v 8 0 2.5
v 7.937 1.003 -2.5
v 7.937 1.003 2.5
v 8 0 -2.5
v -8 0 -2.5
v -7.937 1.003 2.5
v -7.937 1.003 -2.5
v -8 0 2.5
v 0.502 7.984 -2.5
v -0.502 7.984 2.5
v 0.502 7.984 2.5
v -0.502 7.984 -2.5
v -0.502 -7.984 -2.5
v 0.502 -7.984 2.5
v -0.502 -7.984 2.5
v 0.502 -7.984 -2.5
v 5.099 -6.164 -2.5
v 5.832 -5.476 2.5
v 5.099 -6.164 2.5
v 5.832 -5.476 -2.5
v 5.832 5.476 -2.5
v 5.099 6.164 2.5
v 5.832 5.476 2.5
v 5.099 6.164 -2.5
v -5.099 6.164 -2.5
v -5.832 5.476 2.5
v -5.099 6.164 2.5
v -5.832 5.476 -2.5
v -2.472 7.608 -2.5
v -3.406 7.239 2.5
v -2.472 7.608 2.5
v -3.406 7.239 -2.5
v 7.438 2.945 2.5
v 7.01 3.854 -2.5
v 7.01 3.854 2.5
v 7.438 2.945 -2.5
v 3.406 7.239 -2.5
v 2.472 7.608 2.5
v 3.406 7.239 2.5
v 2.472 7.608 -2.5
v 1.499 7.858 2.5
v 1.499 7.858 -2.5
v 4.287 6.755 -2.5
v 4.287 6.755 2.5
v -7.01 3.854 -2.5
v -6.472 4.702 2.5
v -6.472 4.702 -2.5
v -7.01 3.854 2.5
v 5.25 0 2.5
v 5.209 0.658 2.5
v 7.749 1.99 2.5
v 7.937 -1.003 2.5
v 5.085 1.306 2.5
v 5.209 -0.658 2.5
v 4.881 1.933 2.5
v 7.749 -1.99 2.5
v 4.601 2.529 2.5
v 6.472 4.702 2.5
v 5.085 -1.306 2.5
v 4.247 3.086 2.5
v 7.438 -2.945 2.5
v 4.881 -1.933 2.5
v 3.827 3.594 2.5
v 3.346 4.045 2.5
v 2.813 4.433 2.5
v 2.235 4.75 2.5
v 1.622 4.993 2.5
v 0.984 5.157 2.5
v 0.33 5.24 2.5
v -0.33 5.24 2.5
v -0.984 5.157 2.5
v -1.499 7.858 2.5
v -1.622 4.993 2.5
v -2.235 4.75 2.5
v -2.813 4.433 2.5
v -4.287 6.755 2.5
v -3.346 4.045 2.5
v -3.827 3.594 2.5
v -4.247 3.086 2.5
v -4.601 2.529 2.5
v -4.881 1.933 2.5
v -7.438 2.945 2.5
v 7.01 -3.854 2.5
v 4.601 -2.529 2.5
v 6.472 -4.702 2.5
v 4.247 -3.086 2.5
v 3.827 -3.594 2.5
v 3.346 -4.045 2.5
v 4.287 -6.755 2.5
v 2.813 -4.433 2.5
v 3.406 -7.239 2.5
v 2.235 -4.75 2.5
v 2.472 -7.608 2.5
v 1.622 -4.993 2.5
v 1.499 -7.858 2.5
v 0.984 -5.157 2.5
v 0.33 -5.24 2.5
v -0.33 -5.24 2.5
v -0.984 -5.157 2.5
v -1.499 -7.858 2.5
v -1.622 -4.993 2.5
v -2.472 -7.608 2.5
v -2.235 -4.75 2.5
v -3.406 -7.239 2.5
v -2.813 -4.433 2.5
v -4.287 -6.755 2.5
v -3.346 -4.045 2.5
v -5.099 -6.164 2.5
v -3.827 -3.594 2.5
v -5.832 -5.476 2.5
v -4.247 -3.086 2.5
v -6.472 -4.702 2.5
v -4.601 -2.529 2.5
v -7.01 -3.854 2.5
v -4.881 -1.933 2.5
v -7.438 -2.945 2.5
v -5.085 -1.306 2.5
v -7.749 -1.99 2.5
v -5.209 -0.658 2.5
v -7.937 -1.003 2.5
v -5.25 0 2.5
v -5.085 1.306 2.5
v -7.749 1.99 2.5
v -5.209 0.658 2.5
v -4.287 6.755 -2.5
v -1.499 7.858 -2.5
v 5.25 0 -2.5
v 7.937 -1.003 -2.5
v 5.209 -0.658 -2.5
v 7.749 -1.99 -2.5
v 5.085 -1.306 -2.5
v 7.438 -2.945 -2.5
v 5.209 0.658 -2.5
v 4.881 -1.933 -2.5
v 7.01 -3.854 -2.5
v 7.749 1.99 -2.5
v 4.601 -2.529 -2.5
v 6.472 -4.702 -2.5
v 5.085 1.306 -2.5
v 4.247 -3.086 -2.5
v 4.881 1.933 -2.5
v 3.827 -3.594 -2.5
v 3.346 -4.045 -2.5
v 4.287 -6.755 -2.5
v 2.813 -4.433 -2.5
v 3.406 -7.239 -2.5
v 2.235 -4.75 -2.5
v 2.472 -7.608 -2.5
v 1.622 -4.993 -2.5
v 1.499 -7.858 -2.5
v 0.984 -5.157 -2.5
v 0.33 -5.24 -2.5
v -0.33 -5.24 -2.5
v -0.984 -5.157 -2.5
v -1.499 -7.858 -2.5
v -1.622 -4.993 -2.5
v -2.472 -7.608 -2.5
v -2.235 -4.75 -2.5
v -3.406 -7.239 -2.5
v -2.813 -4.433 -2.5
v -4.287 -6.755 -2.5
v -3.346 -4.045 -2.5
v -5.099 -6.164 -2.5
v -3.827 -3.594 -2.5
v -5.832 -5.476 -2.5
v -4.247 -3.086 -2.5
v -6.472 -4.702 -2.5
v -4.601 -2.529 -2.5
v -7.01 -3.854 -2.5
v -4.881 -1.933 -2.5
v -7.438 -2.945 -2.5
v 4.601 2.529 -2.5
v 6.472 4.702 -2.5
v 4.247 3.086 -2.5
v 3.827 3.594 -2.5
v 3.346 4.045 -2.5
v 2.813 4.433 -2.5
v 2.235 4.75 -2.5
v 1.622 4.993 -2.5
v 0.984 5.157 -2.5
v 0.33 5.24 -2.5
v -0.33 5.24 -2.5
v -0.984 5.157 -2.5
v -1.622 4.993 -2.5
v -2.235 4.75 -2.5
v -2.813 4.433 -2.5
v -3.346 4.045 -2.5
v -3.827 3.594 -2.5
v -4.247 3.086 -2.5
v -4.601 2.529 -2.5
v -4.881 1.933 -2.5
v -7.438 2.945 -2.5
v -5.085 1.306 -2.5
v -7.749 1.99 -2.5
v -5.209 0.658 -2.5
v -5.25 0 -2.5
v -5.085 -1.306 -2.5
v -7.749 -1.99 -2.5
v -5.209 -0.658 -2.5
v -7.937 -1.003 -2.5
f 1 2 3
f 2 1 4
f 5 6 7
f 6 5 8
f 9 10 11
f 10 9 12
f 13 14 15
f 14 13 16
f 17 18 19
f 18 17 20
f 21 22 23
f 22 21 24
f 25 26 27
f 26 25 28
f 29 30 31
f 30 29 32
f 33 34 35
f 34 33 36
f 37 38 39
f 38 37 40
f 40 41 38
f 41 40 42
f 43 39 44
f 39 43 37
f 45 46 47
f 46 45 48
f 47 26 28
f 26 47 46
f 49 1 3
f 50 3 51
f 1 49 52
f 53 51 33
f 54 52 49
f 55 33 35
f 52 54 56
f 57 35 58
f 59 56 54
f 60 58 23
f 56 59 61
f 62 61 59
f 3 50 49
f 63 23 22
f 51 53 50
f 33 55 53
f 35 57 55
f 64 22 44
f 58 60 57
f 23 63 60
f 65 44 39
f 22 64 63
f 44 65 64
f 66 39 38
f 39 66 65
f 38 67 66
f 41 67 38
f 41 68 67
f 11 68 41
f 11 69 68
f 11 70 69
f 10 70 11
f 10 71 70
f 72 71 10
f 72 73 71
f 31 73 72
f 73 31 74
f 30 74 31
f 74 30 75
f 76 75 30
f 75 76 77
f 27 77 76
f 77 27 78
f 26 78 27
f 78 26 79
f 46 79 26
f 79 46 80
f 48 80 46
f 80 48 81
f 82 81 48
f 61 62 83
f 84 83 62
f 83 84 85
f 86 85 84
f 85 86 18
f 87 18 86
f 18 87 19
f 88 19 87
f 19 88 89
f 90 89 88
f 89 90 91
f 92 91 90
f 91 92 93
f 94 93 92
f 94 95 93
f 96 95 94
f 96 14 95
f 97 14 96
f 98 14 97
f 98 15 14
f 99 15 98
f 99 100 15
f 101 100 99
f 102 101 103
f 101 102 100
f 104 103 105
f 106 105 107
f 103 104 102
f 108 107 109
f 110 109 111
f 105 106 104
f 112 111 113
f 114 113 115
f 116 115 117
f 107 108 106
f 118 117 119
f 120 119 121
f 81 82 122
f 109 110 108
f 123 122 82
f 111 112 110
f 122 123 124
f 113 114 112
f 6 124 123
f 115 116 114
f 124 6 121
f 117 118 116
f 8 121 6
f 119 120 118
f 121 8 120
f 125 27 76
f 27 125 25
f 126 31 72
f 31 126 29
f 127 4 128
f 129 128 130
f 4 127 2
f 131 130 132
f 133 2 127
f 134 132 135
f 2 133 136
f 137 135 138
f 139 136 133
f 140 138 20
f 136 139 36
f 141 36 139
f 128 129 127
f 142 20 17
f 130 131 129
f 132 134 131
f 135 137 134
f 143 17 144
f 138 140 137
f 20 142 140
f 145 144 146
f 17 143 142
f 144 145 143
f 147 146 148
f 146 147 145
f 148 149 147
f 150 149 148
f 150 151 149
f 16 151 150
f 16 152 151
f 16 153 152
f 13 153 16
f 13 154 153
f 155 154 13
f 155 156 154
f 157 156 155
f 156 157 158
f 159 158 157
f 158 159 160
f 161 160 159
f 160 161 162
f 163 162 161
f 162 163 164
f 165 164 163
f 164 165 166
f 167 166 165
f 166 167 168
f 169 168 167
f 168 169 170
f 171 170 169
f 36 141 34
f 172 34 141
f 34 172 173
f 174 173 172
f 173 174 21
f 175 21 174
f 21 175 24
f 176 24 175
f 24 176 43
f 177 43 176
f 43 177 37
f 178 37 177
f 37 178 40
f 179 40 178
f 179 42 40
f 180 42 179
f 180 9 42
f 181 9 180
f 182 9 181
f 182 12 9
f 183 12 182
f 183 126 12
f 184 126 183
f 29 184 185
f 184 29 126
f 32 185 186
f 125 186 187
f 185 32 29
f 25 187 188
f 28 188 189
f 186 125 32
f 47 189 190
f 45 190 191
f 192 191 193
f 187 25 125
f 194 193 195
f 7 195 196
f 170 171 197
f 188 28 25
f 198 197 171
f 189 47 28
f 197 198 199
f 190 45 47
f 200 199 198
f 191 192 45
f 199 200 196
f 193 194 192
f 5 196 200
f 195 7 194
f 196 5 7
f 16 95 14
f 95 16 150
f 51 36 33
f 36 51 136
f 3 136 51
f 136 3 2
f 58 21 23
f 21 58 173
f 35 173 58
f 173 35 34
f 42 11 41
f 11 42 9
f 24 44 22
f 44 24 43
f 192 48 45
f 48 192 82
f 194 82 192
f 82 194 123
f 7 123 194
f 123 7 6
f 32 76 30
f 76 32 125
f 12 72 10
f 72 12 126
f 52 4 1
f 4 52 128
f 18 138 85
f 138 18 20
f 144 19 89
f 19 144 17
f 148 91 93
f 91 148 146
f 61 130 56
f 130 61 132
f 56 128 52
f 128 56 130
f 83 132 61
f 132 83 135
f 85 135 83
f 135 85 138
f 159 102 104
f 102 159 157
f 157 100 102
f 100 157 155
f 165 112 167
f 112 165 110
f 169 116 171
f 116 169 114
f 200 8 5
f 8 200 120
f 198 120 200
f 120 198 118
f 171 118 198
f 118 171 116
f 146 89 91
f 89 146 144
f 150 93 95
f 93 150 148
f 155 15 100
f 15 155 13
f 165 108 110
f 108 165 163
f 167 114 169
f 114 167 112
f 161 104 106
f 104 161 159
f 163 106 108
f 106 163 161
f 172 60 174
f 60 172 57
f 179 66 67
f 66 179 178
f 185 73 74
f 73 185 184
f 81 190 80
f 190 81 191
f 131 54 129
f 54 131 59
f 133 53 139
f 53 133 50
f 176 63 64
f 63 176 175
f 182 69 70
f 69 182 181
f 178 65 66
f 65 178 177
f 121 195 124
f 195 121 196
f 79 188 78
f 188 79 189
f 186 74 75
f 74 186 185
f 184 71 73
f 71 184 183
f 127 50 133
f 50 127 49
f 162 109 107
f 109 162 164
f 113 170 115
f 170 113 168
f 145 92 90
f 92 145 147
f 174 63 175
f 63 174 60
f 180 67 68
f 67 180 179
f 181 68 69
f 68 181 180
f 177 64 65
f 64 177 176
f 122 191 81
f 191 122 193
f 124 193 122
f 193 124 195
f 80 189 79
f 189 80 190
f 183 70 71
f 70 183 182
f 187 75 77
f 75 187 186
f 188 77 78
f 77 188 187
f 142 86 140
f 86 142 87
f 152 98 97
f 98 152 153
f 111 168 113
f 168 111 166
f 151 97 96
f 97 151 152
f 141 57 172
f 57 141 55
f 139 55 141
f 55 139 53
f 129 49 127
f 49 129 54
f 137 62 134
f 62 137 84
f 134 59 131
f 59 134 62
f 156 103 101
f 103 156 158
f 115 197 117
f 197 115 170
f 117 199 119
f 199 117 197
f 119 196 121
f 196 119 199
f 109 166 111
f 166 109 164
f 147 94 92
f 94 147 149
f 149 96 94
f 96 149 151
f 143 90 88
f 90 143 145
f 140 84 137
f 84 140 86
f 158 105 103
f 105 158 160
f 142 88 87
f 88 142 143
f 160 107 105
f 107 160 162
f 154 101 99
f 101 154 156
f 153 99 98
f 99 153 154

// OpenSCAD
$fn = 50;


difference() {
	union() {
		translate(v = [0, 0, -2.5000000000]) {
			cylinder(h = 5, r = 8.0000000000);
		}
	}
	union() {
		translate(v = [0, 0, -100.0000000000]) {
			cylinder(h = 200, r = 5.2500000000);
		}
	}
}
